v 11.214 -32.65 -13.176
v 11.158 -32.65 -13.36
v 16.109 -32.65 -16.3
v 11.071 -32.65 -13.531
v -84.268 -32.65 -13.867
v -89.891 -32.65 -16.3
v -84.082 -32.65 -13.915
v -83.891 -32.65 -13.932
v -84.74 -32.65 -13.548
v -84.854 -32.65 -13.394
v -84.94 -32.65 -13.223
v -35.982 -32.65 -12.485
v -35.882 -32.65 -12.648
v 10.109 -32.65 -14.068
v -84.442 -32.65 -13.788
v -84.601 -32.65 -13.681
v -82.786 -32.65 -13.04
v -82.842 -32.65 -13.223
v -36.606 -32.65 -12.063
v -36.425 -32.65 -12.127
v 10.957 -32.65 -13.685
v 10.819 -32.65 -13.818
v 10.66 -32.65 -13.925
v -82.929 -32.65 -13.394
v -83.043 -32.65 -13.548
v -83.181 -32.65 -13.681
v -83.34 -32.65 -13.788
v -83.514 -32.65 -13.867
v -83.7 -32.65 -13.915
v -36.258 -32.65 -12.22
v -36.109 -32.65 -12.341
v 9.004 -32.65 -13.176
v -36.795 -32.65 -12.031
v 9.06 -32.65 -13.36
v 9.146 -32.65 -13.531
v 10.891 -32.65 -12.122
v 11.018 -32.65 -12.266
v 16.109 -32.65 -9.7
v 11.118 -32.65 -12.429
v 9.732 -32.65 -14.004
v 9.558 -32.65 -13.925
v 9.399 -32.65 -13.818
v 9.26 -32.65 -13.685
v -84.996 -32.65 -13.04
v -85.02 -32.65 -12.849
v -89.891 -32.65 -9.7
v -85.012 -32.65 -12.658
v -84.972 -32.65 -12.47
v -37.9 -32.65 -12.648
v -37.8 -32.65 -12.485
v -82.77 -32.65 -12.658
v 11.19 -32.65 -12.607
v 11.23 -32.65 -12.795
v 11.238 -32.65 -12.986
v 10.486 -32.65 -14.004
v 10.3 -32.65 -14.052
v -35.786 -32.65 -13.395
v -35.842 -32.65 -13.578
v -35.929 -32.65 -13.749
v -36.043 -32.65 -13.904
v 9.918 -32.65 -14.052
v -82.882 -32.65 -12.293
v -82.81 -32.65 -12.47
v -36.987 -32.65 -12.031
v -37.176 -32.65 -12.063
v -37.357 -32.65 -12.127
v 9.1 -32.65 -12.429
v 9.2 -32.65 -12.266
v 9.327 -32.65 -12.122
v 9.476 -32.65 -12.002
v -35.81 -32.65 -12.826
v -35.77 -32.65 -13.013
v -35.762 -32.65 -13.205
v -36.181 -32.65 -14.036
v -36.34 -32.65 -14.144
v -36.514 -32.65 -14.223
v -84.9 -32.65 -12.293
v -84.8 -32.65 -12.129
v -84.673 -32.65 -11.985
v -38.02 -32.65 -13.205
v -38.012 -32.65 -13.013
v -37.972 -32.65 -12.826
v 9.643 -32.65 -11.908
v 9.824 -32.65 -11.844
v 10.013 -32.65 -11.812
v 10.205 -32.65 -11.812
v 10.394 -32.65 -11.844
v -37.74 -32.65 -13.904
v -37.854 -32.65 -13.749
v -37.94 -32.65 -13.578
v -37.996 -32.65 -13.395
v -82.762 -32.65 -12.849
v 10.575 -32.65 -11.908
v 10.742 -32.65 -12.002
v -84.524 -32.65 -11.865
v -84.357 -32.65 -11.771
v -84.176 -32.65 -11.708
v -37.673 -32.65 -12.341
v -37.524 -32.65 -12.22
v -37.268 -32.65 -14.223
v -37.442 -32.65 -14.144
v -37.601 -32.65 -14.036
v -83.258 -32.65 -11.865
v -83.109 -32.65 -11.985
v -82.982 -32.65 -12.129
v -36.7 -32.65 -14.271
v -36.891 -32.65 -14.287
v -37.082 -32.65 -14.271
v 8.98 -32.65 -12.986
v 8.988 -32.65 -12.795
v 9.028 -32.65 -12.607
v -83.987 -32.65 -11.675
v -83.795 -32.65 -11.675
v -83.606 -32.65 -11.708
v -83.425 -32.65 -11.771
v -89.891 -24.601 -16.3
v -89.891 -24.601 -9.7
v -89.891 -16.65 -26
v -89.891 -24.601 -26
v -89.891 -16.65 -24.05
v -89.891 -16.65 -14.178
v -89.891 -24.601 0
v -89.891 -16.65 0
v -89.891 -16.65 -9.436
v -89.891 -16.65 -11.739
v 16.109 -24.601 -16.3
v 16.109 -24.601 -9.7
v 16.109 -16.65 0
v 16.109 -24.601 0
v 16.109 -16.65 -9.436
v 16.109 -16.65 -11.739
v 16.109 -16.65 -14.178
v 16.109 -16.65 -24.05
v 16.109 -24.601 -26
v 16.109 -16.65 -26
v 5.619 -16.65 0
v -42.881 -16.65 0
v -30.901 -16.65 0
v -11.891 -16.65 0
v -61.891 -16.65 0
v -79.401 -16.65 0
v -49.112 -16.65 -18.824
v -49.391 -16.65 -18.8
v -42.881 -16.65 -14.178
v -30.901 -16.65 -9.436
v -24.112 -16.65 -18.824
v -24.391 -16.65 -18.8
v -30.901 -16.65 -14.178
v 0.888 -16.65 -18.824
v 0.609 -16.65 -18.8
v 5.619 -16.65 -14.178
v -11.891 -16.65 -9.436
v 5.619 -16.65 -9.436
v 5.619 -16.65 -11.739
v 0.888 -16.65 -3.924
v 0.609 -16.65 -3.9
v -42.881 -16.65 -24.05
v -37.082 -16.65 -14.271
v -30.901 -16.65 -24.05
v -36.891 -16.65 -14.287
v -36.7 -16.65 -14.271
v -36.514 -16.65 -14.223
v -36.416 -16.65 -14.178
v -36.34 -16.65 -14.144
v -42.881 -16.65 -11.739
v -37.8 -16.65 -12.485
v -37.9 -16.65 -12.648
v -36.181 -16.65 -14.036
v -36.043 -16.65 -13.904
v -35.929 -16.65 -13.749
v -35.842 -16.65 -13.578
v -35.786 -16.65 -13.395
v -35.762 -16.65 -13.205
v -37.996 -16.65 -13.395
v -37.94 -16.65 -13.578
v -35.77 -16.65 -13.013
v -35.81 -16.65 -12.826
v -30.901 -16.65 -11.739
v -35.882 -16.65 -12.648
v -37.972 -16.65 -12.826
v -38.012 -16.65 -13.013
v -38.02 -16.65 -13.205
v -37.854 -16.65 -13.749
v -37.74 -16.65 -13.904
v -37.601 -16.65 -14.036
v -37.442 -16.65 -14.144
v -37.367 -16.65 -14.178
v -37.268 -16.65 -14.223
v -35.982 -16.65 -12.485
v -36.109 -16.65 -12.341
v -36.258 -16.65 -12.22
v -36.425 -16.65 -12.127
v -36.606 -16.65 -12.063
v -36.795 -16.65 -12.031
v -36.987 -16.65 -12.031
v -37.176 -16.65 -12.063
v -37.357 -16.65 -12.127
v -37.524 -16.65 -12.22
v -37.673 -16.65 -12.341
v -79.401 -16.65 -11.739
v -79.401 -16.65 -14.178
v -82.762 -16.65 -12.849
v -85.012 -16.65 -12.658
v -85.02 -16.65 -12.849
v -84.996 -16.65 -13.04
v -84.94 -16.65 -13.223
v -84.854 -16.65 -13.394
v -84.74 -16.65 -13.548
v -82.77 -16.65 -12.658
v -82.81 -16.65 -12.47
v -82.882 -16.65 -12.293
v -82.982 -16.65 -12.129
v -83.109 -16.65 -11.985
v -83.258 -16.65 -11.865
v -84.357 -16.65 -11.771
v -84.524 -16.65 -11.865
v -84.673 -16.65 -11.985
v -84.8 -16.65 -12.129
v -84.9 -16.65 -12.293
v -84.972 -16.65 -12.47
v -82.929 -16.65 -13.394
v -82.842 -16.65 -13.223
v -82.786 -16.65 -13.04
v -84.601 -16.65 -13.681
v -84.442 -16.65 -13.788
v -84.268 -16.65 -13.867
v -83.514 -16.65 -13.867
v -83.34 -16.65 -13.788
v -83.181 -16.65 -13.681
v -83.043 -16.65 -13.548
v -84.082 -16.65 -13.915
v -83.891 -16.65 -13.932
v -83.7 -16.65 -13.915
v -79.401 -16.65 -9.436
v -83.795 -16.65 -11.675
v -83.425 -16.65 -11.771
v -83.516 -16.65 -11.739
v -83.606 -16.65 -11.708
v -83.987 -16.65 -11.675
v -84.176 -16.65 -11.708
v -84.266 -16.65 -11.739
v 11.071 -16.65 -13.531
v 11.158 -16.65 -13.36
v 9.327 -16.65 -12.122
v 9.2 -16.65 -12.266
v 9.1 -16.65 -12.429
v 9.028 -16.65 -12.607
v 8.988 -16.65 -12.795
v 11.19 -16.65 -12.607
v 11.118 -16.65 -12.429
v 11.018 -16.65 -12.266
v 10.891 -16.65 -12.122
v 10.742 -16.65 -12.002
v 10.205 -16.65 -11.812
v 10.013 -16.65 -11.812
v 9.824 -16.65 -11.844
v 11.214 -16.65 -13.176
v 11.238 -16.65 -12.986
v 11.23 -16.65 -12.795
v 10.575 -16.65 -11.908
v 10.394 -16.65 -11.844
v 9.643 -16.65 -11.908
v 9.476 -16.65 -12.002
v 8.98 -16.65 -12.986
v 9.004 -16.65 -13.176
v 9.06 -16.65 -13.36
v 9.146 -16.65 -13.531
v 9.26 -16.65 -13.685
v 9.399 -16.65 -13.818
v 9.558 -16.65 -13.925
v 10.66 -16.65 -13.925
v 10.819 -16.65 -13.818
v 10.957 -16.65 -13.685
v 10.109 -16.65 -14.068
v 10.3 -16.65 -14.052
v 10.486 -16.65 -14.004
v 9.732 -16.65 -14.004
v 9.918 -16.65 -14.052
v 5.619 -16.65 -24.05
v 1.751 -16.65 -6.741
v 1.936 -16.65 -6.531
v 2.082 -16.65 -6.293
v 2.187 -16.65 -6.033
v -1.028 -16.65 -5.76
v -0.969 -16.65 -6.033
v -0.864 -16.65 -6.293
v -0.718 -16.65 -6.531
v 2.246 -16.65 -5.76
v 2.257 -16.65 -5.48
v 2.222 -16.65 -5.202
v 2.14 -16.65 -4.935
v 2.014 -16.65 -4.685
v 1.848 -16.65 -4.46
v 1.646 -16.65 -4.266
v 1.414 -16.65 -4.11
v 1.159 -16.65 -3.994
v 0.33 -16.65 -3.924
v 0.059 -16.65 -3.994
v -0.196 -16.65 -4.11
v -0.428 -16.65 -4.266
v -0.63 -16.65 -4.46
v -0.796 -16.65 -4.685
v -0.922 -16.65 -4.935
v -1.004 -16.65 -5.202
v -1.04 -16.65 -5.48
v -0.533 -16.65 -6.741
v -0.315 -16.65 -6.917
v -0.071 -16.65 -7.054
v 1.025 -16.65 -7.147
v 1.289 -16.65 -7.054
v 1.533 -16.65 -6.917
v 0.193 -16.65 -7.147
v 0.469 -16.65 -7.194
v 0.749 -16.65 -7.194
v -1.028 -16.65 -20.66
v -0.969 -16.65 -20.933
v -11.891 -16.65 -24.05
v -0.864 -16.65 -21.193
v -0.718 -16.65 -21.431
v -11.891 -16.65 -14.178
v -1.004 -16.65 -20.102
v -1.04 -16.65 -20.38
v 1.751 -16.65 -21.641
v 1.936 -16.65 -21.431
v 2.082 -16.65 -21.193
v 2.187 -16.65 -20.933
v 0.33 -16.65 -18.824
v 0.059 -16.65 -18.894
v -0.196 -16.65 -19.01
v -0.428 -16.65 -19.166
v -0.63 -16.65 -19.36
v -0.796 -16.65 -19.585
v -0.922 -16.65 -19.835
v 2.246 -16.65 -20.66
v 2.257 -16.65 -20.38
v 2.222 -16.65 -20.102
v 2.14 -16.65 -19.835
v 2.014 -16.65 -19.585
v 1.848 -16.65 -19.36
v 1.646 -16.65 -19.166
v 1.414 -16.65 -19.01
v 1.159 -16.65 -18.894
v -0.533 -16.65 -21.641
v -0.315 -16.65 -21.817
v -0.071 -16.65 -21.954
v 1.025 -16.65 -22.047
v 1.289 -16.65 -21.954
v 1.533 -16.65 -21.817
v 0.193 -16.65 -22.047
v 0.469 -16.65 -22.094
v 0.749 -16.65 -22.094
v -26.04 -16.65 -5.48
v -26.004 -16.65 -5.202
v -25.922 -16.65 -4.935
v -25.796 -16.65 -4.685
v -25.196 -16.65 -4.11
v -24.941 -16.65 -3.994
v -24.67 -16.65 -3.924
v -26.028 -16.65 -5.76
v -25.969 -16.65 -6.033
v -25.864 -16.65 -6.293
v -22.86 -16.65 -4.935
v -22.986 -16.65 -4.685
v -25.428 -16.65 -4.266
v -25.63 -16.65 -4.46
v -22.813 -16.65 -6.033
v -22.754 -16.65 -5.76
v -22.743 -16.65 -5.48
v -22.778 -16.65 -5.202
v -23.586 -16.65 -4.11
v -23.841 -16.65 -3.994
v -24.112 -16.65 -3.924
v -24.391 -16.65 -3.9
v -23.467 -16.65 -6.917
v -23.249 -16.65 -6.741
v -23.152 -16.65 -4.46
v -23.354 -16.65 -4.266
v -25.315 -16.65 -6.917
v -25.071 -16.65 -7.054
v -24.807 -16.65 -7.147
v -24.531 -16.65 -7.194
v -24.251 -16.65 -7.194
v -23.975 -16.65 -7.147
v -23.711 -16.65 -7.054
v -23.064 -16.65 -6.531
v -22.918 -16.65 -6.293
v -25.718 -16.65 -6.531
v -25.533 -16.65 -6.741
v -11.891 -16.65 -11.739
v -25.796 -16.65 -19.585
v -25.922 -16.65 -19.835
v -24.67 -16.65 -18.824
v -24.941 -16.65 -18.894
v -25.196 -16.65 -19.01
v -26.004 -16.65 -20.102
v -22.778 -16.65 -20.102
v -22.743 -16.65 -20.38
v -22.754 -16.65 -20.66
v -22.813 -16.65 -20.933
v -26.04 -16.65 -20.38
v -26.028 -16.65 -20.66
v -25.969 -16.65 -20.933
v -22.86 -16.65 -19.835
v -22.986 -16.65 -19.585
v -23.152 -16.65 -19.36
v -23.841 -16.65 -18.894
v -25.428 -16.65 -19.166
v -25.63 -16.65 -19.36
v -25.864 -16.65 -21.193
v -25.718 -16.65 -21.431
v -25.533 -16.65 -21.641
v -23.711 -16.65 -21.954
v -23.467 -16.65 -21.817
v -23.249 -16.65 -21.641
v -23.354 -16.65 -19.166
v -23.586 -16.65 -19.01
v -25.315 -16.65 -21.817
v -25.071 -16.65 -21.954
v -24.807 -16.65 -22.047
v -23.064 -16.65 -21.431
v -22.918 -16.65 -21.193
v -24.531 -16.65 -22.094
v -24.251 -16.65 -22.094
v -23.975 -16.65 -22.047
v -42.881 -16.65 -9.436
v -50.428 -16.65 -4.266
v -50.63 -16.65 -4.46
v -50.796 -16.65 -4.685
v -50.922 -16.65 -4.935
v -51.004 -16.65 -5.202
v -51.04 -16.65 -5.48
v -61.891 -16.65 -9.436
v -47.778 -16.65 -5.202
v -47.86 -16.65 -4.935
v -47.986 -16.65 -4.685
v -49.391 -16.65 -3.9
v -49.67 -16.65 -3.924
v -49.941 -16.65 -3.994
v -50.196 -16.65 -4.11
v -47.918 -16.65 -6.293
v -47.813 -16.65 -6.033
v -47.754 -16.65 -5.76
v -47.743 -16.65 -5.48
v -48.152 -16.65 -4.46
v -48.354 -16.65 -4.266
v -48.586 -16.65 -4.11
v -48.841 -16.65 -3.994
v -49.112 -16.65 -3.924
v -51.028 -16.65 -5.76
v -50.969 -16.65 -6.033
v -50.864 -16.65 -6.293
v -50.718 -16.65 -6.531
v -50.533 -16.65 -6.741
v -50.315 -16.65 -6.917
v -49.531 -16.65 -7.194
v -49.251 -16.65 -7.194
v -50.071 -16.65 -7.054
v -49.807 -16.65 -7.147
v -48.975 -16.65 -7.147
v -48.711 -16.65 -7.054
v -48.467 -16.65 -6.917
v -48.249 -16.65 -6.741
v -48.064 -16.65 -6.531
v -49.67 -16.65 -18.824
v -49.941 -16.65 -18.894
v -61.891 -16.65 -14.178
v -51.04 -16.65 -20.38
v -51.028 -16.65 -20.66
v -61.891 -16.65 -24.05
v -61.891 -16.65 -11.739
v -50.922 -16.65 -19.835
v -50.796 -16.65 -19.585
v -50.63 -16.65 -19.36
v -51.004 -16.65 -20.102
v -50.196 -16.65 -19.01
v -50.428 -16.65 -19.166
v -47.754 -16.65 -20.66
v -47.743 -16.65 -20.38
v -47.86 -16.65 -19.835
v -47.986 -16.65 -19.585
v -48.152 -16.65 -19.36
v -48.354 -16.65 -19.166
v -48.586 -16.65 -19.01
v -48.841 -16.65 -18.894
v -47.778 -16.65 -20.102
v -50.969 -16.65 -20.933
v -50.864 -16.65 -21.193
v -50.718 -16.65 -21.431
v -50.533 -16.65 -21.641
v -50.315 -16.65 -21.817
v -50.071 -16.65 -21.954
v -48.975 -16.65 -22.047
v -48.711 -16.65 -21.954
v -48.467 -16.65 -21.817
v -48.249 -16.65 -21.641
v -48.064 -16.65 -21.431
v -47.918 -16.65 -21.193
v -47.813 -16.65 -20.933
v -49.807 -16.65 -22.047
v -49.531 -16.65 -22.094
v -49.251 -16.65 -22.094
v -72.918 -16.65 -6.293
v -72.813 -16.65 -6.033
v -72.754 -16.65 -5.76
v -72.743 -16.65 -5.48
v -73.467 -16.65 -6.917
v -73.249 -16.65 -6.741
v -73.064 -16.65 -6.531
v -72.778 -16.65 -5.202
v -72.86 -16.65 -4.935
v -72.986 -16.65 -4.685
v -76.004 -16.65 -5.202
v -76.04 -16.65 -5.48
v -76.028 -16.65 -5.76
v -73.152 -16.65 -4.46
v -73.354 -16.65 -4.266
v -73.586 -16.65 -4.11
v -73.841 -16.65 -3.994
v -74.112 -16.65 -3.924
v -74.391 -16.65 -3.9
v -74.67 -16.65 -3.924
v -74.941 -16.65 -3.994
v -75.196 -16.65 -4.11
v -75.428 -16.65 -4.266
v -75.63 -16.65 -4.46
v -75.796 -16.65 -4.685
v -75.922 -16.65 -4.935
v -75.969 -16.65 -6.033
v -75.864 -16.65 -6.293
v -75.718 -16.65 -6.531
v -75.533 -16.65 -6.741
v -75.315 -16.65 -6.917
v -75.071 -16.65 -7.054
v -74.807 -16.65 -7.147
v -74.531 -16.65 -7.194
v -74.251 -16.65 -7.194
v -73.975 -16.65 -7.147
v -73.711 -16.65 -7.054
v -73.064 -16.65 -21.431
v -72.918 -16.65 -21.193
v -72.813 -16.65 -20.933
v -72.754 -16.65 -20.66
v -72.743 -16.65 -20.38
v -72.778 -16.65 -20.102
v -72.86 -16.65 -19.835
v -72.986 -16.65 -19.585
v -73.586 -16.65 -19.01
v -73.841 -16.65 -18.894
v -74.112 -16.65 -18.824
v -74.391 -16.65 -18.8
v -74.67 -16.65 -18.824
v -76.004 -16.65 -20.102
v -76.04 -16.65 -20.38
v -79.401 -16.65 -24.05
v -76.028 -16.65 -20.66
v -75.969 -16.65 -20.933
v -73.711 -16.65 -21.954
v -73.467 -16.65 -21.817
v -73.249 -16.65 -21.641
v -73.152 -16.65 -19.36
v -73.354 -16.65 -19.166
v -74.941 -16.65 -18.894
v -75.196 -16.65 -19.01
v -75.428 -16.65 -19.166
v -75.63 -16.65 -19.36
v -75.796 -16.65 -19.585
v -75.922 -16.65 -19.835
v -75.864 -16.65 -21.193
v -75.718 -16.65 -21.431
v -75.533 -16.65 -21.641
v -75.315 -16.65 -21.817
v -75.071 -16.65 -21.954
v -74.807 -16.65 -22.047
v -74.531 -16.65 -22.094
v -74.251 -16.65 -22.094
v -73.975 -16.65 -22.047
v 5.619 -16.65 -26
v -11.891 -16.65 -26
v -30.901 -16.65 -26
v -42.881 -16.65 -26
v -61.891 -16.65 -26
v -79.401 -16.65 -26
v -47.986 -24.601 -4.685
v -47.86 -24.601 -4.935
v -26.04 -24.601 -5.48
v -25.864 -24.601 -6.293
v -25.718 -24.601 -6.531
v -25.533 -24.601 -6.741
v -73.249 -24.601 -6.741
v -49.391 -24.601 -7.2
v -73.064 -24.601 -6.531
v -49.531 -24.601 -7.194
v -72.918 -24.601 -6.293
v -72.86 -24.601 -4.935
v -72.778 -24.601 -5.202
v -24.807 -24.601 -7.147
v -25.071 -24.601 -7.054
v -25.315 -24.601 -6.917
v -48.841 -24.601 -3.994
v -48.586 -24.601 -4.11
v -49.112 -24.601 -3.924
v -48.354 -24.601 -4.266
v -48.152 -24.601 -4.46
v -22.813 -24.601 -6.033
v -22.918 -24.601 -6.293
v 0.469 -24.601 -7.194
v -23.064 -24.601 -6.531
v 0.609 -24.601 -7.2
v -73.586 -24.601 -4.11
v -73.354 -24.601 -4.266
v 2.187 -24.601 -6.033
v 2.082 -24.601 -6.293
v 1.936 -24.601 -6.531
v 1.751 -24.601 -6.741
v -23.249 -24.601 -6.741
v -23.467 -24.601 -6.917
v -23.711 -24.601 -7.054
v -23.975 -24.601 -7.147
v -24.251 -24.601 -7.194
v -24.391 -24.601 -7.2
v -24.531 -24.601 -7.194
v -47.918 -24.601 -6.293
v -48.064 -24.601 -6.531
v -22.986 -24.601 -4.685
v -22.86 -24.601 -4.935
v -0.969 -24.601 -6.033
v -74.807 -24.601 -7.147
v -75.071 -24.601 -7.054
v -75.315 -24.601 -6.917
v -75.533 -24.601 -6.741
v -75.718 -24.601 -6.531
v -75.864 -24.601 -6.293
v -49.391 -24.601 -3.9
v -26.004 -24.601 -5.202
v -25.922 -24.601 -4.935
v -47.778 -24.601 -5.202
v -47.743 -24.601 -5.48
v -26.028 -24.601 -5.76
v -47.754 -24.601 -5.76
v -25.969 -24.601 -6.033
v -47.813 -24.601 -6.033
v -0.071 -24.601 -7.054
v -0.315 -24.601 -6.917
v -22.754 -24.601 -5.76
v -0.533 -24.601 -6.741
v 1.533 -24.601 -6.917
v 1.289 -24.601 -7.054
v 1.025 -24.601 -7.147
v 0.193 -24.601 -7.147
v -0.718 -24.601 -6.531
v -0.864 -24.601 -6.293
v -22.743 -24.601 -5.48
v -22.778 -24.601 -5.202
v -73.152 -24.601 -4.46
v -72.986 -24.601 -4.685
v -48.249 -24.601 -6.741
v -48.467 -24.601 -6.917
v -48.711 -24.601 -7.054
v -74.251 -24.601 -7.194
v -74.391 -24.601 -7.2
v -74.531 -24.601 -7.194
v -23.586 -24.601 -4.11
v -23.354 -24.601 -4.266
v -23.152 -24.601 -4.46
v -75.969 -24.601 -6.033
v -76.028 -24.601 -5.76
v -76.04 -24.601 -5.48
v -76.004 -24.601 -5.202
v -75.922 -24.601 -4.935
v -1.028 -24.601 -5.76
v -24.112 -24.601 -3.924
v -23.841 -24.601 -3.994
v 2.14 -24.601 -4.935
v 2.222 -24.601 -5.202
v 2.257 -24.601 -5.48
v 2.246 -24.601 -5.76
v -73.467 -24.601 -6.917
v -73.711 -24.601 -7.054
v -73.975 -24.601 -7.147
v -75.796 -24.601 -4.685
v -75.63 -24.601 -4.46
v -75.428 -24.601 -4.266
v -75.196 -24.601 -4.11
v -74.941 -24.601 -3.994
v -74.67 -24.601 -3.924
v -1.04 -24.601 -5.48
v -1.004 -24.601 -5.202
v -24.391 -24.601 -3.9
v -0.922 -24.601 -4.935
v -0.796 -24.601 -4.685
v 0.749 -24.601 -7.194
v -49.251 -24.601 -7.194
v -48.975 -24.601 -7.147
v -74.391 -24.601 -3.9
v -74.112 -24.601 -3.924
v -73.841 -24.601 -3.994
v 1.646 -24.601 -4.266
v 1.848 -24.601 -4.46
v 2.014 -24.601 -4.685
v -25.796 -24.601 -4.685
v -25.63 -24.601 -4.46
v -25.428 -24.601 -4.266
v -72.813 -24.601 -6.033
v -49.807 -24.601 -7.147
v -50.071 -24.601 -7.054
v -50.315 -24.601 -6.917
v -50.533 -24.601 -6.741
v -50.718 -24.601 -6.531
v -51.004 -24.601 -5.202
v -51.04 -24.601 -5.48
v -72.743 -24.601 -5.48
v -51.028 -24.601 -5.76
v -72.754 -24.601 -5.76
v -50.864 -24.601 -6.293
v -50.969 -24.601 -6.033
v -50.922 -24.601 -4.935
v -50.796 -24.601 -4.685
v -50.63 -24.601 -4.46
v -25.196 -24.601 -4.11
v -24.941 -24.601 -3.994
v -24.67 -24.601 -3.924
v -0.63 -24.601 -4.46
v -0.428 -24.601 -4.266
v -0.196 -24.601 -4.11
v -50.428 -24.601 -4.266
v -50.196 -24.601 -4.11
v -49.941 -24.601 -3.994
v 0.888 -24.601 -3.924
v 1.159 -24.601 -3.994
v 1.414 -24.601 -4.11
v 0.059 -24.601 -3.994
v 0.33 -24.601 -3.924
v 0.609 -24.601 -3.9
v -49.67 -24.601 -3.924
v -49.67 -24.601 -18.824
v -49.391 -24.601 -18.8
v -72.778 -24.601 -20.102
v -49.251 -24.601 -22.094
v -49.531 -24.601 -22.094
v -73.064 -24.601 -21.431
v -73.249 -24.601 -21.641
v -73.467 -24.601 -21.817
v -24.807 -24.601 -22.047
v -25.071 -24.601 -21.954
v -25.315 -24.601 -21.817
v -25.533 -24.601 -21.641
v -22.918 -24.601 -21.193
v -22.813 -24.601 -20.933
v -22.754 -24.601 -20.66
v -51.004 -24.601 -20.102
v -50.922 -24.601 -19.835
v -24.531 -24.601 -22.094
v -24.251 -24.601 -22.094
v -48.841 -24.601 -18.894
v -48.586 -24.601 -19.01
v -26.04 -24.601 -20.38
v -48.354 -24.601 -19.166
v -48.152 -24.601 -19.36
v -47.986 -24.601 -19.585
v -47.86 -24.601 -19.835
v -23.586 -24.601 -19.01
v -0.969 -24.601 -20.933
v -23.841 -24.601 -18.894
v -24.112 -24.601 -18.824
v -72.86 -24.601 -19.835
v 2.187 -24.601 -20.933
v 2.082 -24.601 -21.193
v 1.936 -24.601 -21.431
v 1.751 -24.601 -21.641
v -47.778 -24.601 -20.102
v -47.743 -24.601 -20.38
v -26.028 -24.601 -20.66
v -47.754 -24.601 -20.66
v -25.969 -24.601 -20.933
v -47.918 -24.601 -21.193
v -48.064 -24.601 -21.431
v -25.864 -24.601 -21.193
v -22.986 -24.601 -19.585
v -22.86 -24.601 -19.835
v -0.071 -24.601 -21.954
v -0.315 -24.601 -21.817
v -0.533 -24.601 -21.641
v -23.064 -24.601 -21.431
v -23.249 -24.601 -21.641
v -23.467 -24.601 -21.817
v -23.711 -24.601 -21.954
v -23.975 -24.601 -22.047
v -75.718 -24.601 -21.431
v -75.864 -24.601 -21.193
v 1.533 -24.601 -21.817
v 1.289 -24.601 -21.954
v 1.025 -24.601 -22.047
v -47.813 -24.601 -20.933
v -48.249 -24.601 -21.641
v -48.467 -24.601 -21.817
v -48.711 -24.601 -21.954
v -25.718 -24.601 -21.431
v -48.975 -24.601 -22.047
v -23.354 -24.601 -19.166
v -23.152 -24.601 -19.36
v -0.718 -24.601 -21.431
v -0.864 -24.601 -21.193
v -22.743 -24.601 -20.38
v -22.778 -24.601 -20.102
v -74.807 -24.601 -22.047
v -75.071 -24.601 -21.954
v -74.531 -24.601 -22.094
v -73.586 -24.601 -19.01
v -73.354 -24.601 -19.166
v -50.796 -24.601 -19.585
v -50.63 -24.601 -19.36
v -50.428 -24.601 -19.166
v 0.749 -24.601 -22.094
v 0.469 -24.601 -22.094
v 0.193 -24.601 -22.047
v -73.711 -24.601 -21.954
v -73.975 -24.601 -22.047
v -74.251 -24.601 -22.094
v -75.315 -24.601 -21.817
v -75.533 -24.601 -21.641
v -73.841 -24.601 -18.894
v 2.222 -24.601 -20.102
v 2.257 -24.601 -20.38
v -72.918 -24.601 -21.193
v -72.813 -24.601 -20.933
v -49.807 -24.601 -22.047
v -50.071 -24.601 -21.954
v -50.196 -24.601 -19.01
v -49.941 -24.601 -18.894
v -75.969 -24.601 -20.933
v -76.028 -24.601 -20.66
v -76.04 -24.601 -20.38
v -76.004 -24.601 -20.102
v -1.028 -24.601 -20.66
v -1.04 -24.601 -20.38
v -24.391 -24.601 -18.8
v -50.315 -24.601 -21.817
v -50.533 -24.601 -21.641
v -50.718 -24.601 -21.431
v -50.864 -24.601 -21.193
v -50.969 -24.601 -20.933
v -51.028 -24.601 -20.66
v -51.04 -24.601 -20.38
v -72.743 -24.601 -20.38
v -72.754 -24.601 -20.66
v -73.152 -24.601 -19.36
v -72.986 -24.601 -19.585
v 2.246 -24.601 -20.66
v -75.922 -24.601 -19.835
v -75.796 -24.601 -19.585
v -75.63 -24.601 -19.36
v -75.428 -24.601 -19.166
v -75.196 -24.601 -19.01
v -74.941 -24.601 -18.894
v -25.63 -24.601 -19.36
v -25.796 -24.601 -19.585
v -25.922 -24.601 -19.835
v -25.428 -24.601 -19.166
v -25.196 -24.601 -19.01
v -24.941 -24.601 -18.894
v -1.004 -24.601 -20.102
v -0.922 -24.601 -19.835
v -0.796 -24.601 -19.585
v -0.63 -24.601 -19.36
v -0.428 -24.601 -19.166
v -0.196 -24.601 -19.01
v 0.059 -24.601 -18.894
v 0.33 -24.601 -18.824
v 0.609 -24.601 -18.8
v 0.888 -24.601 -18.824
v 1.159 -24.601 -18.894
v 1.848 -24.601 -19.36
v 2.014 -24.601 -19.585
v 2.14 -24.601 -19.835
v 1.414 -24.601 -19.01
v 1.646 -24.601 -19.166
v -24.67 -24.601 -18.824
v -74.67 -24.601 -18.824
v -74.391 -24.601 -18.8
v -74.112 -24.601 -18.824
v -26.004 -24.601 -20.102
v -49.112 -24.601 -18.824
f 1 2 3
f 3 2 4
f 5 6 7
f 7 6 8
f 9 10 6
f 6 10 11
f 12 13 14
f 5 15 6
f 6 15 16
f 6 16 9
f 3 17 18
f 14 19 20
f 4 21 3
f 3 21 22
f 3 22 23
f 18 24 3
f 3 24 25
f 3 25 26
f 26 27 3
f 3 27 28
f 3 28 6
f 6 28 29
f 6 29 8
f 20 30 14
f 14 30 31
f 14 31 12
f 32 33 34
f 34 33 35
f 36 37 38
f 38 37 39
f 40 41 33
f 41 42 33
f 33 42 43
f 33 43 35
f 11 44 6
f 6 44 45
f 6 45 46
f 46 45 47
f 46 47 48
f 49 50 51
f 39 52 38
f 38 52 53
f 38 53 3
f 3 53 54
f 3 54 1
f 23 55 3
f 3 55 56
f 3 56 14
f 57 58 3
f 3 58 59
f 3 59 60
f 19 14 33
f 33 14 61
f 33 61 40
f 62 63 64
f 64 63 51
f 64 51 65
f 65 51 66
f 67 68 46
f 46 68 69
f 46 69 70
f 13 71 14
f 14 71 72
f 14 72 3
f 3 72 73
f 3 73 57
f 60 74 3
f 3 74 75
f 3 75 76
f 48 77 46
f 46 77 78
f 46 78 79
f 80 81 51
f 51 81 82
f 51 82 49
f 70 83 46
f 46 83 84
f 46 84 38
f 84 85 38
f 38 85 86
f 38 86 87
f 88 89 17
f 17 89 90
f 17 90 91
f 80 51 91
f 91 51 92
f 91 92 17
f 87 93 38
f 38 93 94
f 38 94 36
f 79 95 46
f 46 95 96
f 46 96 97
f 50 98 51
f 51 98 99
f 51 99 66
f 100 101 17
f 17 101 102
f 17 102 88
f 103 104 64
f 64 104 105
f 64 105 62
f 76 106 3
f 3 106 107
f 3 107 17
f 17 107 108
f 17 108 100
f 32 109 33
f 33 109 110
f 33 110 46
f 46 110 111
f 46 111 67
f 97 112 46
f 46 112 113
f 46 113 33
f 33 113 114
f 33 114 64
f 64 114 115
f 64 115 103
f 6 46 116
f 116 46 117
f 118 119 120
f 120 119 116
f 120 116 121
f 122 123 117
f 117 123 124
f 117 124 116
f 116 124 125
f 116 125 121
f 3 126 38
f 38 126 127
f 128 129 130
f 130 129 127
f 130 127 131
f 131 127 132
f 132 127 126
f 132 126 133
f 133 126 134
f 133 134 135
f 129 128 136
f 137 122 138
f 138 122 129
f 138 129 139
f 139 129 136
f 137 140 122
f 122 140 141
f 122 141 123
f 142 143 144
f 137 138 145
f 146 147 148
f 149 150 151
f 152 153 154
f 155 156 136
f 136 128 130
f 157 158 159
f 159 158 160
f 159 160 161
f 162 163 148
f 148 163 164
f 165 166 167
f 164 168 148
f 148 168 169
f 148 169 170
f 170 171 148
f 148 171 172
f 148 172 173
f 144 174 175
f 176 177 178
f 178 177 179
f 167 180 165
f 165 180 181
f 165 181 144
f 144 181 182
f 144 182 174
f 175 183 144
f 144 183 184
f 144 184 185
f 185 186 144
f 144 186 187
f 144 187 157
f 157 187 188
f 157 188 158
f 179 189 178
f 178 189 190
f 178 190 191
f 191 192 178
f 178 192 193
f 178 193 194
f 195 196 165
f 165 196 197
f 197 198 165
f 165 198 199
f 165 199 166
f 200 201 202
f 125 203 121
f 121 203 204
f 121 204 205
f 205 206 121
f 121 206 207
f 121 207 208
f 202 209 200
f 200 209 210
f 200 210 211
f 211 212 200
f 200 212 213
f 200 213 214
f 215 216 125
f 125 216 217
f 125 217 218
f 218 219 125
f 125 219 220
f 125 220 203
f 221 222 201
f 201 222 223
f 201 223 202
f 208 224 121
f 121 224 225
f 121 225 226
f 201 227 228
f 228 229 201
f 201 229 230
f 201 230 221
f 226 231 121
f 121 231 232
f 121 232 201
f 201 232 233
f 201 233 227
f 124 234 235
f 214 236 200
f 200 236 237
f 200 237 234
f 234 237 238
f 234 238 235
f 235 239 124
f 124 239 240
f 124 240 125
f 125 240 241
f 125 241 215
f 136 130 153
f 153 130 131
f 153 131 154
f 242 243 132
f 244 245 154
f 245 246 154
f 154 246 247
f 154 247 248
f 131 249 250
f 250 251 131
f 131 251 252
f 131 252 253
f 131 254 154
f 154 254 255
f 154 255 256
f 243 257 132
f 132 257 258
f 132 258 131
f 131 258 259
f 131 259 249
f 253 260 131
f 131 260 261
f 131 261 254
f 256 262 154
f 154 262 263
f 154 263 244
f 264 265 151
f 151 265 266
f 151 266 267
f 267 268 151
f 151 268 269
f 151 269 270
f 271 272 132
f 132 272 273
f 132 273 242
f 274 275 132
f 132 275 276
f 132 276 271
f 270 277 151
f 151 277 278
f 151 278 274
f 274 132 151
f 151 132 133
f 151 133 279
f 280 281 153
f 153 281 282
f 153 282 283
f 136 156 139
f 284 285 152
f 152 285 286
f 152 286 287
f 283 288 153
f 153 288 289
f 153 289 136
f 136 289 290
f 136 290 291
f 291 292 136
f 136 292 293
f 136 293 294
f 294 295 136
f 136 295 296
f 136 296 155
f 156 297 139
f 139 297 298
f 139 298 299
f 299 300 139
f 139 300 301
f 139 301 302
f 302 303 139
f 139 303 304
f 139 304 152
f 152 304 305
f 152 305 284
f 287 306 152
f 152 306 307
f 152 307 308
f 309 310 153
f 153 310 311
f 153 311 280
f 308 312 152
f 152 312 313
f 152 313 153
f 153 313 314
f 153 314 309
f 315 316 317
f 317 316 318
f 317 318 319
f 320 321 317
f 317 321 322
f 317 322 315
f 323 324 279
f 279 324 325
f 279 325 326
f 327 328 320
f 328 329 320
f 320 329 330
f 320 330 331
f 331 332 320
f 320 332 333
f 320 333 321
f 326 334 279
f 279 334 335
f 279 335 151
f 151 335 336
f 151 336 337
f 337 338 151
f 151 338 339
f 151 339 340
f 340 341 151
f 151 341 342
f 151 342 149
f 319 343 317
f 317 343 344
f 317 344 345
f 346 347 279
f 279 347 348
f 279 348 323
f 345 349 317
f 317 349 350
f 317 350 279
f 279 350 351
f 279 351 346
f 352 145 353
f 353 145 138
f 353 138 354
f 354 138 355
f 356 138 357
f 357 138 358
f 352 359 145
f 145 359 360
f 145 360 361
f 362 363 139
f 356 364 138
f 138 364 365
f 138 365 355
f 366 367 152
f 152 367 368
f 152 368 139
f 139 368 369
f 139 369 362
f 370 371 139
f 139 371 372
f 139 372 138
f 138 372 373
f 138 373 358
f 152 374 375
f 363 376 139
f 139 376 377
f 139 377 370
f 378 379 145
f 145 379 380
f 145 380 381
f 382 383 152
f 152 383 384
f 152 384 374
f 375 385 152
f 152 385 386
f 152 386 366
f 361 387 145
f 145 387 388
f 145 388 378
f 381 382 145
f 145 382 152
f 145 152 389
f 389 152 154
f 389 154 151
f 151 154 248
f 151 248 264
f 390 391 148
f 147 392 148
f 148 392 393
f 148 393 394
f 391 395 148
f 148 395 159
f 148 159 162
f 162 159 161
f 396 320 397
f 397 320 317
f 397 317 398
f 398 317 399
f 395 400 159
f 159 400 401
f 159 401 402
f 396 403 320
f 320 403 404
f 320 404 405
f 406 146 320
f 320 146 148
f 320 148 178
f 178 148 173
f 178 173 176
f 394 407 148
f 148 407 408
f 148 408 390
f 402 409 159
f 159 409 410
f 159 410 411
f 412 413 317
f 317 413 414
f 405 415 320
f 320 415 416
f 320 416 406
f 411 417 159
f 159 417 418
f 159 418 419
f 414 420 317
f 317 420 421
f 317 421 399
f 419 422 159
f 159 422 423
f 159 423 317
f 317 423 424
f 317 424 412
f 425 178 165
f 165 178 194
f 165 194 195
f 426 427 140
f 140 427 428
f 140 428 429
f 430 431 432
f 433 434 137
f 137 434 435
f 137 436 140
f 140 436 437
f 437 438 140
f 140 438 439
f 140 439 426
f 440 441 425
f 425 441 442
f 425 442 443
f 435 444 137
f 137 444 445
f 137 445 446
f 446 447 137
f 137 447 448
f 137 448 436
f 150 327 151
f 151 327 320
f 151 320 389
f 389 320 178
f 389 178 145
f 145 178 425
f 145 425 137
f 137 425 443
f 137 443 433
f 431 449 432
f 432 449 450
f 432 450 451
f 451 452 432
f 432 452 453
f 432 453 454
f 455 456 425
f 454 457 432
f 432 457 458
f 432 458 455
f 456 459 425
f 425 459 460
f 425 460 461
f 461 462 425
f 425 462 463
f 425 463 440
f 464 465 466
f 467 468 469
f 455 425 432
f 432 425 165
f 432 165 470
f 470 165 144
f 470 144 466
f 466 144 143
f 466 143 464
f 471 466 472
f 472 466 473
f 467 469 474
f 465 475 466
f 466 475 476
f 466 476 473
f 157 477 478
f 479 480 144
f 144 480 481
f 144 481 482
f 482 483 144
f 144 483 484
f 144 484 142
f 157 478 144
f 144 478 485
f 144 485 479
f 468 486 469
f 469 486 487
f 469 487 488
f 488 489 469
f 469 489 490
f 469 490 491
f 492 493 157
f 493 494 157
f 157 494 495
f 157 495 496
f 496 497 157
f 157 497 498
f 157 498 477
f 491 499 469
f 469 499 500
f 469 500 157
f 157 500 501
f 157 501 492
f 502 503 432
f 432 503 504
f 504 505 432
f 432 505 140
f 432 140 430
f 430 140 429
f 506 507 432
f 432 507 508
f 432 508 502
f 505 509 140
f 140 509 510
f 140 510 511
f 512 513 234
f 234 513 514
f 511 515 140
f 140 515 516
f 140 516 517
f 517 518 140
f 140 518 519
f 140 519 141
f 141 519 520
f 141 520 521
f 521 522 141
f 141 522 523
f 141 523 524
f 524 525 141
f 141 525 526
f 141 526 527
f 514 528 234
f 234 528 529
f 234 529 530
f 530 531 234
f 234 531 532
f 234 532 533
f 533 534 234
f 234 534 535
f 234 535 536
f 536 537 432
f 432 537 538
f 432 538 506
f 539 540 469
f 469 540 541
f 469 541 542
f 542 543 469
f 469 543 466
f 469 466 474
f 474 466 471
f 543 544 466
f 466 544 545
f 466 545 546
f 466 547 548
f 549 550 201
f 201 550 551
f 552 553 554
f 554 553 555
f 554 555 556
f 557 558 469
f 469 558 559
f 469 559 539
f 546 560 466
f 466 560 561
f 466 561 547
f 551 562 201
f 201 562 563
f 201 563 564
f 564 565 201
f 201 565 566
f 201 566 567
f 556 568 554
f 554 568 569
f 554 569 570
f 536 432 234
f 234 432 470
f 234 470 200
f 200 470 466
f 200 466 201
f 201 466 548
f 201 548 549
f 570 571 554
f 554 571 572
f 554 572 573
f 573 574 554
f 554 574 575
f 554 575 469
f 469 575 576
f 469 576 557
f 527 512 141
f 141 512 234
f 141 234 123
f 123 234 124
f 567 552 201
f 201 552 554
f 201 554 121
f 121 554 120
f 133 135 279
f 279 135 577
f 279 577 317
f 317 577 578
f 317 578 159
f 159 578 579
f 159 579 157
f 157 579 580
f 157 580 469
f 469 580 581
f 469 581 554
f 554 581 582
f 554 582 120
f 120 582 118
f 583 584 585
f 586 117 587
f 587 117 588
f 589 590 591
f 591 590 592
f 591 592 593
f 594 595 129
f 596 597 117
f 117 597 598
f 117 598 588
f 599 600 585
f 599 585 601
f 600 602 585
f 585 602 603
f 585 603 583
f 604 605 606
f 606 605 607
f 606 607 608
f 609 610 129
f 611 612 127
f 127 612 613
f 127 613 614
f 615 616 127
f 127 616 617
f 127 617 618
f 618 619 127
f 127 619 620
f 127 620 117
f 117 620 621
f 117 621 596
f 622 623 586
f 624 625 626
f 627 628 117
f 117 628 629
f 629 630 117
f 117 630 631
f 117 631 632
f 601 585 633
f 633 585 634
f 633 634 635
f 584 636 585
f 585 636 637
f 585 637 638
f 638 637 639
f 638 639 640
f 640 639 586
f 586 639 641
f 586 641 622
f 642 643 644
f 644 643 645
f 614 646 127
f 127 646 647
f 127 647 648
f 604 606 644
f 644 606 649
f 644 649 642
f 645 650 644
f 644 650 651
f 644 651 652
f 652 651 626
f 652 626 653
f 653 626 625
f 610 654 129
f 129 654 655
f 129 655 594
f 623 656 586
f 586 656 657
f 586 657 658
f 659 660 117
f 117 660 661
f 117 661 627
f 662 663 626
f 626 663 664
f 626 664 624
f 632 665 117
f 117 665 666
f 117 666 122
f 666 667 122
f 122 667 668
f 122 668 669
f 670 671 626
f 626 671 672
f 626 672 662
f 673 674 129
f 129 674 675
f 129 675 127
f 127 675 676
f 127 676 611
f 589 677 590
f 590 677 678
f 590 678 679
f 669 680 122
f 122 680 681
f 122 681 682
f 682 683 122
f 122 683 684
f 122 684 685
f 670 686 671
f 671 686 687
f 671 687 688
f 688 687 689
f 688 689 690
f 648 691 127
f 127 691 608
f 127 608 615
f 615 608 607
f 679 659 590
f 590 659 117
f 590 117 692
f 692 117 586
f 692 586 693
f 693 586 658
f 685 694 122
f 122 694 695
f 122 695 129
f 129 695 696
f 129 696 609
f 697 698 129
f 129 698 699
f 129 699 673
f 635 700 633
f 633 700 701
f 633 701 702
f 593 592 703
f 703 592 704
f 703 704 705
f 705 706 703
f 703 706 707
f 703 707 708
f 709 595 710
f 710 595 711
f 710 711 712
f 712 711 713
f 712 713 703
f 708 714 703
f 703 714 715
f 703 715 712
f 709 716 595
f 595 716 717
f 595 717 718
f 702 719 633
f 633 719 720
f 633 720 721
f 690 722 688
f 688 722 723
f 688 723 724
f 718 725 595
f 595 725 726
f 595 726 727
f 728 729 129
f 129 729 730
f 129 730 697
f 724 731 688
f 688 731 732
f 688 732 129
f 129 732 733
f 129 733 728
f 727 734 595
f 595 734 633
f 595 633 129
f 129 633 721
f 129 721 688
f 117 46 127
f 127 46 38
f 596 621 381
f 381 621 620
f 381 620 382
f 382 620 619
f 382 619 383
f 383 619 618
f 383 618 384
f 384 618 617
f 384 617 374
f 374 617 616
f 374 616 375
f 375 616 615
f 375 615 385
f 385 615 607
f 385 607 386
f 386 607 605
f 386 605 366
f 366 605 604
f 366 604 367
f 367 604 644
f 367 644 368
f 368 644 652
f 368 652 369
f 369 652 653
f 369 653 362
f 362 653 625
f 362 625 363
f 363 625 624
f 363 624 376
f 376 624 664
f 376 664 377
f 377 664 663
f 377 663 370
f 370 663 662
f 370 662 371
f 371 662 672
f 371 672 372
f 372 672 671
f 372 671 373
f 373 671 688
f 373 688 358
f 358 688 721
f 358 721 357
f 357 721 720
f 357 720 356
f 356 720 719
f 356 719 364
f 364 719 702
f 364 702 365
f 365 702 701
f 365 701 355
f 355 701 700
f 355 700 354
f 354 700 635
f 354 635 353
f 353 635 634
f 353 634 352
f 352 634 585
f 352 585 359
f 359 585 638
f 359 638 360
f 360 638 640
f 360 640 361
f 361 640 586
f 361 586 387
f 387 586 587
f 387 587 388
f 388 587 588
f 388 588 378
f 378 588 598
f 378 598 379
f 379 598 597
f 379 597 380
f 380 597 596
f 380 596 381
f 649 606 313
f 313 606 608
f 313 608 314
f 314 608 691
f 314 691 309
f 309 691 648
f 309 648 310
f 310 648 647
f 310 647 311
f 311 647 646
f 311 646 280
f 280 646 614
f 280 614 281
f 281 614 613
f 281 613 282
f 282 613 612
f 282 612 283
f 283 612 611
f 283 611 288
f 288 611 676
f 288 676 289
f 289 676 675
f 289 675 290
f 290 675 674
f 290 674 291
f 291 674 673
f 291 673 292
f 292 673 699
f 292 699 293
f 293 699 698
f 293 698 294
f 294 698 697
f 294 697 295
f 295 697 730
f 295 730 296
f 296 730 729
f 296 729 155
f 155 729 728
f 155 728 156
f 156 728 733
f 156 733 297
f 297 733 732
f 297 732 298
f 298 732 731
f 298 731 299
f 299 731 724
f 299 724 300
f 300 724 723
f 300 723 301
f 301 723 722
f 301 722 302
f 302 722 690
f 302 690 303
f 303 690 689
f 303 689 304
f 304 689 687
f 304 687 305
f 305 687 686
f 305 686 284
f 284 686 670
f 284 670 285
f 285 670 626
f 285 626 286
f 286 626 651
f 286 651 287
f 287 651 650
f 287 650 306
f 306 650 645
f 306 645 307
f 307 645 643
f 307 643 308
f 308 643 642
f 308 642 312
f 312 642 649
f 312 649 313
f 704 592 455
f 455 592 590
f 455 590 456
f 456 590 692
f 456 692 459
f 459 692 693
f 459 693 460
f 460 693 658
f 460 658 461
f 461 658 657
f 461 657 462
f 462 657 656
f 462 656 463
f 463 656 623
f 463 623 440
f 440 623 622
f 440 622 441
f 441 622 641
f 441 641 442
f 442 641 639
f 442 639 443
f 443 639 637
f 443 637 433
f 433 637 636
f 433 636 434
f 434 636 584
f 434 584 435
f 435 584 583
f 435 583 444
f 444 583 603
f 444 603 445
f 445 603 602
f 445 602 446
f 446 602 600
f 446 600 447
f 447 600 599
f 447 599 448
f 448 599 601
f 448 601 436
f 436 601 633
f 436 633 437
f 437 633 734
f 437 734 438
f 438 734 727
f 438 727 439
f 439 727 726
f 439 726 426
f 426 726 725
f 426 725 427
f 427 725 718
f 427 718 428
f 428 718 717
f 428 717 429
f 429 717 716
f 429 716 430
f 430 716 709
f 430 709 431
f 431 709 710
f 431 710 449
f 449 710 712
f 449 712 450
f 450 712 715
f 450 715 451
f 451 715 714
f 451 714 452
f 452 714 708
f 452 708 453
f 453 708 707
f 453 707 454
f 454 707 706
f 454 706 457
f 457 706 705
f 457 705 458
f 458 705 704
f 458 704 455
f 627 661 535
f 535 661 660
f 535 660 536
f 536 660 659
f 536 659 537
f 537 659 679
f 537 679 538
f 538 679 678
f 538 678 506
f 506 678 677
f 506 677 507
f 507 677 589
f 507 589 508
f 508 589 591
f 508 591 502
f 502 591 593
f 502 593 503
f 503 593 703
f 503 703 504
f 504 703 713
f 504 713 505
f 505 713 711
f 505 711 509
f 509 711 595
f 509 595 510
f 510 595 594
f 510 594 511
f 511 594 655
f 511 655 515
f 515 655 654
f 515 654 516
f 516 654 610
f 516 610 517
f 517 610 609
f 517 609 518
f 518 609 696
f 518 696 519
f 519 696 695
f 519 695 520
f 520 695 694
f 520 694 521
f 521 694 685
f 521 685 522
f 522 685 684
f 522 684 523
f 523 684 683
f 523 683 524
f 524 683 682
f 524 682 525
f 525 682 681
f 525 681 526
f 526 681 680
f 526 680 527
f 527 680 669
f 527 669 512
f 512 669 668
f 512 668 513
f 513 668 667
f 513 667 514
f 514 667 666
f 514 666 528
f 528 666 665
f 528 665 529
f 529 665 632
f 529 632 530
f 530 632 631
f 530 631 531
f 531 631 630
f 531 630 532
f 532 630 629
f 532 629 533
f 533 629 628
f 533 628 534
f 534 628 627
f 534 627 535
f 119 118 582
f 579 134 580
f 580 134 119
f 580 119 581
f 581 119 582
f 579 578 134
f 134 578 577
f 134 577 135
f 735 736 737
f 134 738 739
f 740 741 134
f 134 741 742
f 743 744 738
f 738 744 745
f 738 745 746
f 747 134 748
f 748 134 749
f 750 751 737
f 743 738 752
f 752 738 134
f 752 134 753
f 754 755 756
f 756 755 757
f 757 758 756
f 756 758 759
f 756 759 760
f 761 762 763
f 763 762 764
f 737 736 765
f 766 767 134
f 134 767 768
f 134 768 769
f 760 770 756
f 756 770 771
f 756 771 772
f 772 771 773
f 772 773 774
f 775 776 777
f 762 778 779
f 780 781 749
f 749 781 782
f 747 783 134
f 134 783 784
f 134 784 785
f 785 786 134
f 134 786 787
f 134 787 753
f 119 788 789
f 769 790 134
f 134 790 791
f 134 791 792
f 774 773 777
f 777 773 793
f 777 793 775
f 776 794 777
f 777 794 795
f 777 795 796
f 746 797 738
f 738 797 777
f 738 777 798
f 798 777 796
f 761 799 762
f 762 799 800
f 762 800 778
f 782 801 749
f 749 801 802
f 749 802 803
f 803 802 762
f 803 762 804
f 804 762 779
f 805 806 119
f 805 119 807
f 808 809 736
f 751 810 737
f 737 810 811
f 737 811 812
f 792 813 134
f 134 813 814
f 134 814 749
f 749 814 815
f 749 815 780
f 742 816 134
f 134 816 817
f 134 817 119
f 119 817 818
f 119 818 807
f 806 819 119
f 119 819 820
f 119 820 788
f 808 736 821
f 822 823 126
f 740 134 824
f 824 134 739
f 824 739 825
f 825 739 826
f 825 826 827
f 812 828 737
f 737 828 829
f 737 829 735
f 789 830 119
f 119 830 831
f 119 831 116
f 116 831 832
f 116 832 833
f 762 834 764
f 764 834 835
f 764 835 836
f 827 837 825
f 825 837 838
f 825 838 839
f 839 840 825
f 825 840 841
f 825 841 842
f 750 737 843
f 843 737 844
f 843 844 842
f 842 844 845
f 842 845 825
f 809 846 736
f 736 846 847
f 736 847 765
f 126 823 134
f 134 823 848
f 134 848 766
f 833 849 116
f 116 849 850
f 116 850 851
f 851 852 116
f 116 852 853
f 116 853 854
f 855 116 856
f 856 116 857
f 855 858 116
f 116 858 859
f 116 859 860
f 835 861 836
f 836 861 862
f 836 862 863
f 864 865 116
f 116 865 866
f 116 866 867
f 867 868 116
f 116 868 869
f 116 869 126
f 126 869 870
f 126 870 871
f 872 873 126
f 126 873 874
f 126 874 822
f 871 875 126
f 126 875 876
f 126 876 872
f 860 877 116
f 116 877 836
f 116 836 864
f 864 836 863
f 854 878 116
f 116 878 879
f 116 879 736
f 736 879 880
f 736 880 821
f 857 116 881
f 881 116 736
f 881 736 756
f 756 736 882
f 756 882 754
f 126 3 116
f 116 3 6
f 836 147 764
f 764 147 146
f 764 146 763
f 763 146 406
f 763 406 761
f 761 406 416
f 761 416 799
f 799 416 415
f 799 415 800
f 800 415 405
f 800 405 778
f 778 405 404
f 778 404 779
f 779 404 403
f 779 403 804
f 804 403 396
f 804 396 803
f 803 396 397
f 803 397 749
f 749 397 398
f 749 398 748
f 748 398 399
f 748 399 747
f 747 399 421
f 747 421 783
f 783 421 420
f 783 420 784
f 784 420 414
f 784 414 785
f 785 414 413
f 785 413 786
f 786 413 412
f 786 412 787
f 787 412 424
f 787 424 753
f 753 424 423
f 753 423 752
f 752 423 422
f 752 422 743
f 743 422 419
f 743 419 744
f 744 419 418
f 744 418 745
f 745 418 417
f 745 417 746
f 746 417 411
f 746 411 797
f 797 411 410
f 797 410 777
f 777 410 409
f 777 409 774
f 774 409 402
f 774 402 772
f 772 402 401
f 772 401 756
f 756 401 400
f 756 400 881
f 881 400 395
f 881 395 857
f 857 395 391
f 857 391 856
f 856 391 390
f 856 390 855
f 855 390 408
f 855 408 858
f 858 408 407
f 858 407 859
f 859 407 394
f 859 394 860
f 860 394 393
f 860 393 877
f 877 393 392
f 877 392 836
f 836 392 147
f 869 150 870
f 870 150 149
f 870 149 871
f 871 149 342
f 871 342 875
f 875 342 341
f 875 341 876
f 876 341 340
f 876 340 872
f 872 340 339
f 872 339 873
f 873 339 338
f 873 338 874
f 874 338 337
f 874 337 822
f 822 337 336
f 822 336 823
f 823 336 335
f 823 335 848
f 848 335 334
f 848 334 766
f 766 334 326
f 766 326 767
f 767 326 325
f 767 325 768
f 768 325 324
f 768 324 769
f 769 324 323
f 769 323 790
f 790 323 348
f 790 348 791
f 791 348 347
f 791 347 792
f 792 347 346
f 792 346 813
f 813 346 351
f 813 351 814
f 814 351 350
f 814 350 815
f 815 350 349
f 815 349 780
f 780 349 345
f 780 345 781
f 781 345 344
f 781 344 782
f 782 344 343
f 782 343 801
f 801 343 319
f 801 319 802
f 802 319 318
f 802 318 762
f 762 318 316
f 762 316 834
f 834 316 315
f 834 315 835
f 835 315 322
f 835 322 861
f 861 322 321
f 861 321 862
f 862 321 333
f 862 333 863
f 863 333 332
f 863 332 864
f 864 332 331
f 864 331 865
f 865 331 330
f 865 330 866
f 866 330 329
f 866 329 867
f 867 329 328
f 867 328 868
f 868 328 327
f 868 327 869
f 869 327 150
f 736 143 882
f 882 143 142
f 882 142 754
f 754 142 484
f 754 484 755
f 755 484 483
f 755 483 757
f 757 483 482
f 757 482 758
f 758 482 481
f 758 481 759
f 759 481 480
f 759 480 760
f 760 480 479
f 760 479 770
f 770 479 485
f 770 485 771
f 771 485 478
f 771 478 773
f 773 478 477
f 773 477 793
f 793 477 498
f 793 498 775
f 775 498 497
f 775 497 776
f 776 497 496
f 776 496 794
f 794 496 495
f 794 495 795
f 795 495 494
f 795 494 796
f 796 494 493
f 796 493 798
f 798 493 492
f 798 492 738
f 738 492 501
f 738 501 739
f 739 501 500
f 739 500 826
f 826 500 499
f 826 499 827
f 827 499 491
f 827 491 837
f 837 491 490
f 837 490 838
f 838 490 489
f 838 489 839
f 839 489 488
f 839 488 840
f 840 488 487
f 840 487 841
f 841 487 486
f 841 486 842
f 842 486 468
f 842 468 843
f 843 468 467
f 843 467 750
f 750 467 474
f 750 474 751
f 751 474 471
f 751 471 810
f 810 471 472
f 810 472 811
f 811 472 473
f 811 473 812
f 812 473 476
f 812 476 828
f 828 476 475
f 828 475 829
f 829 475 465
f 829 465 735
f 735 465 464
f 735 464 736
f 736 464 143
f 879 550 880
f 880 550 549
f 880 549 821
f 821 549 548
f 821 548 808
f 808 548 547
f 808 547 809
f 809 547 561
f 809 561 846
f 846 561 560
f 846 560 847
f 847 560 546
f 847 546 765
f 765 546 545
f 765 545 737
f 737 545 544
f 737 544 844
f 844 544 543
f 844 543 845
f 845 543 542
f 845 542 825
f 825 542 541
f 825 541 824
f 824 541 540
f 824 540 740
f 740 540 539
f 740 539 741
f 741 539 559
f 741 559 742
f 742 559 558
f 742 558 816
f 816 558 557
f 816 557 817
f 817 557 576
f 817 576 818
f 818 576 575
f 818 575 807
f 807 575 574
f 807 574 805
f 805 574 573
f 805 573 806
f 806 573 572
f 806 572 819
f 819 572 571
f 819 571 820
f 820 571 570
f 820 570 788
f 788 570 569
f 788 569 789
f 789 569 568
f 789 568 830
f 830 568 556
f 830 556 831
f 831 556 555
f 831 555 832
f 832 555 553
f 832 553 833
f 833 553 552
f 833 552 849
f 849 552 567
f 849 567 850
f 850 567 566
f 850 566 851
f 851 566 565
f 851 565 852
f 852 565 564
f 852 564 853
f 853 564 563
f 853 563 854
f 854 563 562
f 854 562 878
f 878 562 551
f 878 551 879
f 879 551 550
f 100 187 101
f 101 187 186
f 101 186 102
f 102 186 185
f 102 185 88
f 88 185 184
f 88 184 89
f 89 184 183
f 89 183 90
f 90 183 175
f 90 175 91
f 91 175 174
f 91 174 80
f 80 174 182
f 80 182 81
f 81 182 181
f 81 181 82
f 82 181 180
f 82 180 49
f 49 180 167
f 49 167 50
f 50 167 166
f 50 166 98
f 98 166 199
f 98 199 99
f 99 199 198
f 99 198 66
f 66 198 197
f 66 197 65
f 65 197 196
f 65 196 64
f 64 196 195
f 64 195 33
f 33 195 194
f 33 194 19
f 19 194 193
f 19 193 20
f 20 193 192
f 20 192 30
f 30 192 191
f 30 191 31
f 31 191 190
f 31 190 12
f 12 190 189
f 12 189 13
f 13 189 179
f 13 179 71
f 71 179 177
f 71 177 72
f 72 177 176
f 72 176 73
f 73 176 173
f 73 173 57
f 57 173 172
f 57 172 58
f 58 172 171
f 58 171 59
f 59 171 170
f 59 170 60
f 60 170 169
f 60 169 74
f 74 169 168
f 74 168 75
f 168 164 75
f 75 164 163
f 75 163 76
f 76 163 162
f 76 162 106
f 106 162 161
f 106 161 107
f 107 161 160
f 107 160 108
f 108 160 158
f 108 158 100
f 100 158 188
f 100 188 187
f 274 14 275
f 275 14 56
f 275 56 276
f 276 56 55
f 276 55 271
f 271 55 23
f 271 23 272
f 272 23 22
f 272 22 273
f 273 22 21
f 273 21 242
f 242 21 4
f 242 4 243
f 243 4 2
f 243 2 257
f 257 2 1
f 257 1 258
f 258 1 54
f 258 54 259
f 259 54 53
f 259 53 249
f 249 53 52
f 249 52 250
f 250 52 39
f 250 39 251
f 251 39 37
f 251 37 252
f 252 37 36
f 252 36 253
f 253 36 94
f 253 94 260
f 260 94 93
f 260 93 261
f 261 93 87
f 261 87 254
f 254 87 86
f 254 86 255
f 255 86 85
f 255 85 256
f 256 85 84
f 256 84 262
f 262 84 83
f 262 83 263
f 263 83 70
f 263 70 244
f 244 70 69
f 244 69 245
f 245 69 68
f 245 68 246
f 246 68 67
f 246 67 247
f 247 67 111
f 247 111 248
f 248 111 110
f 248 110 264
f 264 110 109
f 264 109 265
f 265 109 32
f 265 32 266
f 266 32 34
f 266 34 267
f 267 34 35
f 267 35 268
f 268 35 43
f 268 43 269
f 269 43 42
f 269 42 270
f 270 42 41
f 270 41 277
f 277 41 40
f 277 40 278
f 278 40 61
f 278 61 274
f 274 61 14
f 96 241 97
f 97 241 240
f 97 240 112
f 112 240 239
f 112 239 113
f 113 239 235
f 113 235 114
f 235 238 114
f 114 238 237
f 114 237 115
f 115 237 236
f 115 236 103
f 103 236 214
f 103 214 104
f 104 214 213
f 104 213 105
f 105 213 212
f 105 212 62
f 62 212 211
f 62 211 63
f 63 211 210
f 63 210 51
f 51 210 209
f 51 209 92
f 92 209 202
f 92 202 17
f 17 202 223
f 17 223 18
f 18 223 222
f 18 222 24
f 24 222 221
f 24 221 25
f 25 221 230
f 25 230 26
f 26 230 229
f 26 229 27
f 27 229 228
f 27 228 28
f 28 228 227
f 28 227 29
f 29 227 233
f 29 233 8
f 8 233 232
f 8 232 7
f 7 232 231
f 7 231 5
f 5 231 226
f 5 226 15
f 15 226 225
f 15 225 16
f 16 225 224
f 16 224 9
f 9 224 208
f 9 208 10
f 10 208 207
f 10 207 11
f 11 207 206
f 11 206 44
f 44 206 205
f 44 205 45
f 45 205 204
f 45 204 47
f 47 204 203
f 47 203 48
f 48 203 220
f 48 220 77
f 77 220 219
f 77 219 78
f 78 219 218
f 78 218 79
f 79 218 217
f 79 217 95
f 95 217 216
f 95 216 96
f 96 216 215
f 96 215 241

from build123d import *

# Parameters (mm, degrees)
SKETCH4_W                       = 106
SKETCH4_H                       = 16
BOSS_EXTRUDE2_DEPTH             = 13
CUT_EXTRUDE3_START              = -9.7
SKETCH25_W                      = 106
SKETCH25_H                      = 8.1
CUT_EXTRUDE3_DEPTH              = 107.216438698
M4X0_7_TAPPED_HOLE1_D           = 3.3
MIRROR1_START                   = -24.601316976
MIRROR1_OUTLINE_W               = 106
MIRROR1_OUTLINE_H               = 13
MIRROR1_OUTLINE_R               = 1.65
MIRROR1_DEPTH                   = 7.951316976
MIRROR1_START_2                 = -32.65
MIRROR1_2_OUTLINE_W             = 106
MIRROR1_2_OUTLINE_H             = 3.3
MIRROR1_2_DEPTH                 = 8.048683024
F_4_40_TAPPED_HOLE1_D           = 2.2606
F_4_40_TAPPED_HOLE1_ON_FACE_2_D = 2.2606


# Read off the part's stored shape, not the designer's step: Mirror1
with BuildPart() as part:
    # Sketch4 → Boss-Extrude2 (new body)
    with BuildSketch(Plane.XY):
        with Locations((-36.891047602, -24.65)):
            Rectangle(SKETCH4_W, SKETCH4_H)
    extrude(amount=-BOSS_EXTRUDE2_DEPTH)

    # Sketch25 → Cut-Extrude3 (cut)
    with BuildSketch(Plane.XY.offset(CUT_EXTRUDE3_START)):
        with Locations((-36.891047602, -28.651316976)):
            Rectangle(SKETCH25_W, SKETCH25_H)
    extrude(amount=CUT_EXTRUDE3_DEPTH, mode=Mode.SUBTRACT)

    # M4x0.7 Tapped Hole1 (through all)
    with Locations(Plane(origin=(-74.391047602, -16.65, -5.55), x_dir=(0, 0, 1), z_dir=(0, 1, 0))):
        with Locations((0, 0), (0, 25), (0, 75), (0, 50)):
            Hole(M4X0_7_TAPPED_HOLE1_D / 2)

    # Mirror1 outline → Mirror1 (add)
    with BuildSketch(Plane(origin=(0, 0, 0), x_dir=(1, 0, 0), z_dir=(0, 1, 0)).offset(MIRROR1_START)):
        with Locations((-36.891047602, 19.5)):
            Rectangle(MIRROR1_OUTLINE_W, MIRROR1_OUTLINE_H)
        with Locations((-74.391047602, 20.45)):
            Circle(MIRROR1_OUTLINE_R, mode=Mode.SUBTRACT)
        with Locations((-49.391047602, 20.45)):
            Circle(MIRROR1_OUTLINE_R, mode=Mode.SUBTRACT)
        with Locations((-24.391047602, 20.45)):
            Circle(MIRROR1_OUTLINE_R, mode=Mode.SUBTRACT)
        with Locations((0.608952398, 20.45)):
            Circle(MIRROR1_OUTLINE_R, mode=Mode.SUBTRACT)
    extrude(amount=MIRROR1_DEPTH)

    # Mirror1 2 outline → Mirror1 2 (add)
    with BuildSketch(Plane(origin=(0, 0, 0), x_dir=(1, 0, 0), z_dir=(0, 1, 0)).offset(MIRROR1_START_2)):
        with Locations((-36.891047602, 14.65)):
            Rectangle(MIRROR1_2_OUTLINE_W, MIRROR1_2_OUTLINE_H)
    extrude(amount=MIRROR1_2_DEPTH)

    # #4-40 Tapped Hole1 (through all)
    with Locations(Plane(origin=(-83.891047602, -32.65, -12.801414568), x_dir=(0, 0, -1), z_dir=(0, -1, 0))):
        with Locations((0, 0), (0.13677014, 94), (0.355392609, 47)):
            Hole(F_4_40_TAPPED_HOLE1_D / 2)

    # #4-40 Tapped Hole1 on face 2 (through all)
    with Locations(Plane(origin=(-13.707536503, 0, 46.33240541), x_dir=(0, 0, -1), z_dir=(0, -1, 0))):
        with Locations((0, 0)):
            Hole(F_4_40_TAPPED_HOLE1_ON_FACE_2_D / 2)


solid = part.part
